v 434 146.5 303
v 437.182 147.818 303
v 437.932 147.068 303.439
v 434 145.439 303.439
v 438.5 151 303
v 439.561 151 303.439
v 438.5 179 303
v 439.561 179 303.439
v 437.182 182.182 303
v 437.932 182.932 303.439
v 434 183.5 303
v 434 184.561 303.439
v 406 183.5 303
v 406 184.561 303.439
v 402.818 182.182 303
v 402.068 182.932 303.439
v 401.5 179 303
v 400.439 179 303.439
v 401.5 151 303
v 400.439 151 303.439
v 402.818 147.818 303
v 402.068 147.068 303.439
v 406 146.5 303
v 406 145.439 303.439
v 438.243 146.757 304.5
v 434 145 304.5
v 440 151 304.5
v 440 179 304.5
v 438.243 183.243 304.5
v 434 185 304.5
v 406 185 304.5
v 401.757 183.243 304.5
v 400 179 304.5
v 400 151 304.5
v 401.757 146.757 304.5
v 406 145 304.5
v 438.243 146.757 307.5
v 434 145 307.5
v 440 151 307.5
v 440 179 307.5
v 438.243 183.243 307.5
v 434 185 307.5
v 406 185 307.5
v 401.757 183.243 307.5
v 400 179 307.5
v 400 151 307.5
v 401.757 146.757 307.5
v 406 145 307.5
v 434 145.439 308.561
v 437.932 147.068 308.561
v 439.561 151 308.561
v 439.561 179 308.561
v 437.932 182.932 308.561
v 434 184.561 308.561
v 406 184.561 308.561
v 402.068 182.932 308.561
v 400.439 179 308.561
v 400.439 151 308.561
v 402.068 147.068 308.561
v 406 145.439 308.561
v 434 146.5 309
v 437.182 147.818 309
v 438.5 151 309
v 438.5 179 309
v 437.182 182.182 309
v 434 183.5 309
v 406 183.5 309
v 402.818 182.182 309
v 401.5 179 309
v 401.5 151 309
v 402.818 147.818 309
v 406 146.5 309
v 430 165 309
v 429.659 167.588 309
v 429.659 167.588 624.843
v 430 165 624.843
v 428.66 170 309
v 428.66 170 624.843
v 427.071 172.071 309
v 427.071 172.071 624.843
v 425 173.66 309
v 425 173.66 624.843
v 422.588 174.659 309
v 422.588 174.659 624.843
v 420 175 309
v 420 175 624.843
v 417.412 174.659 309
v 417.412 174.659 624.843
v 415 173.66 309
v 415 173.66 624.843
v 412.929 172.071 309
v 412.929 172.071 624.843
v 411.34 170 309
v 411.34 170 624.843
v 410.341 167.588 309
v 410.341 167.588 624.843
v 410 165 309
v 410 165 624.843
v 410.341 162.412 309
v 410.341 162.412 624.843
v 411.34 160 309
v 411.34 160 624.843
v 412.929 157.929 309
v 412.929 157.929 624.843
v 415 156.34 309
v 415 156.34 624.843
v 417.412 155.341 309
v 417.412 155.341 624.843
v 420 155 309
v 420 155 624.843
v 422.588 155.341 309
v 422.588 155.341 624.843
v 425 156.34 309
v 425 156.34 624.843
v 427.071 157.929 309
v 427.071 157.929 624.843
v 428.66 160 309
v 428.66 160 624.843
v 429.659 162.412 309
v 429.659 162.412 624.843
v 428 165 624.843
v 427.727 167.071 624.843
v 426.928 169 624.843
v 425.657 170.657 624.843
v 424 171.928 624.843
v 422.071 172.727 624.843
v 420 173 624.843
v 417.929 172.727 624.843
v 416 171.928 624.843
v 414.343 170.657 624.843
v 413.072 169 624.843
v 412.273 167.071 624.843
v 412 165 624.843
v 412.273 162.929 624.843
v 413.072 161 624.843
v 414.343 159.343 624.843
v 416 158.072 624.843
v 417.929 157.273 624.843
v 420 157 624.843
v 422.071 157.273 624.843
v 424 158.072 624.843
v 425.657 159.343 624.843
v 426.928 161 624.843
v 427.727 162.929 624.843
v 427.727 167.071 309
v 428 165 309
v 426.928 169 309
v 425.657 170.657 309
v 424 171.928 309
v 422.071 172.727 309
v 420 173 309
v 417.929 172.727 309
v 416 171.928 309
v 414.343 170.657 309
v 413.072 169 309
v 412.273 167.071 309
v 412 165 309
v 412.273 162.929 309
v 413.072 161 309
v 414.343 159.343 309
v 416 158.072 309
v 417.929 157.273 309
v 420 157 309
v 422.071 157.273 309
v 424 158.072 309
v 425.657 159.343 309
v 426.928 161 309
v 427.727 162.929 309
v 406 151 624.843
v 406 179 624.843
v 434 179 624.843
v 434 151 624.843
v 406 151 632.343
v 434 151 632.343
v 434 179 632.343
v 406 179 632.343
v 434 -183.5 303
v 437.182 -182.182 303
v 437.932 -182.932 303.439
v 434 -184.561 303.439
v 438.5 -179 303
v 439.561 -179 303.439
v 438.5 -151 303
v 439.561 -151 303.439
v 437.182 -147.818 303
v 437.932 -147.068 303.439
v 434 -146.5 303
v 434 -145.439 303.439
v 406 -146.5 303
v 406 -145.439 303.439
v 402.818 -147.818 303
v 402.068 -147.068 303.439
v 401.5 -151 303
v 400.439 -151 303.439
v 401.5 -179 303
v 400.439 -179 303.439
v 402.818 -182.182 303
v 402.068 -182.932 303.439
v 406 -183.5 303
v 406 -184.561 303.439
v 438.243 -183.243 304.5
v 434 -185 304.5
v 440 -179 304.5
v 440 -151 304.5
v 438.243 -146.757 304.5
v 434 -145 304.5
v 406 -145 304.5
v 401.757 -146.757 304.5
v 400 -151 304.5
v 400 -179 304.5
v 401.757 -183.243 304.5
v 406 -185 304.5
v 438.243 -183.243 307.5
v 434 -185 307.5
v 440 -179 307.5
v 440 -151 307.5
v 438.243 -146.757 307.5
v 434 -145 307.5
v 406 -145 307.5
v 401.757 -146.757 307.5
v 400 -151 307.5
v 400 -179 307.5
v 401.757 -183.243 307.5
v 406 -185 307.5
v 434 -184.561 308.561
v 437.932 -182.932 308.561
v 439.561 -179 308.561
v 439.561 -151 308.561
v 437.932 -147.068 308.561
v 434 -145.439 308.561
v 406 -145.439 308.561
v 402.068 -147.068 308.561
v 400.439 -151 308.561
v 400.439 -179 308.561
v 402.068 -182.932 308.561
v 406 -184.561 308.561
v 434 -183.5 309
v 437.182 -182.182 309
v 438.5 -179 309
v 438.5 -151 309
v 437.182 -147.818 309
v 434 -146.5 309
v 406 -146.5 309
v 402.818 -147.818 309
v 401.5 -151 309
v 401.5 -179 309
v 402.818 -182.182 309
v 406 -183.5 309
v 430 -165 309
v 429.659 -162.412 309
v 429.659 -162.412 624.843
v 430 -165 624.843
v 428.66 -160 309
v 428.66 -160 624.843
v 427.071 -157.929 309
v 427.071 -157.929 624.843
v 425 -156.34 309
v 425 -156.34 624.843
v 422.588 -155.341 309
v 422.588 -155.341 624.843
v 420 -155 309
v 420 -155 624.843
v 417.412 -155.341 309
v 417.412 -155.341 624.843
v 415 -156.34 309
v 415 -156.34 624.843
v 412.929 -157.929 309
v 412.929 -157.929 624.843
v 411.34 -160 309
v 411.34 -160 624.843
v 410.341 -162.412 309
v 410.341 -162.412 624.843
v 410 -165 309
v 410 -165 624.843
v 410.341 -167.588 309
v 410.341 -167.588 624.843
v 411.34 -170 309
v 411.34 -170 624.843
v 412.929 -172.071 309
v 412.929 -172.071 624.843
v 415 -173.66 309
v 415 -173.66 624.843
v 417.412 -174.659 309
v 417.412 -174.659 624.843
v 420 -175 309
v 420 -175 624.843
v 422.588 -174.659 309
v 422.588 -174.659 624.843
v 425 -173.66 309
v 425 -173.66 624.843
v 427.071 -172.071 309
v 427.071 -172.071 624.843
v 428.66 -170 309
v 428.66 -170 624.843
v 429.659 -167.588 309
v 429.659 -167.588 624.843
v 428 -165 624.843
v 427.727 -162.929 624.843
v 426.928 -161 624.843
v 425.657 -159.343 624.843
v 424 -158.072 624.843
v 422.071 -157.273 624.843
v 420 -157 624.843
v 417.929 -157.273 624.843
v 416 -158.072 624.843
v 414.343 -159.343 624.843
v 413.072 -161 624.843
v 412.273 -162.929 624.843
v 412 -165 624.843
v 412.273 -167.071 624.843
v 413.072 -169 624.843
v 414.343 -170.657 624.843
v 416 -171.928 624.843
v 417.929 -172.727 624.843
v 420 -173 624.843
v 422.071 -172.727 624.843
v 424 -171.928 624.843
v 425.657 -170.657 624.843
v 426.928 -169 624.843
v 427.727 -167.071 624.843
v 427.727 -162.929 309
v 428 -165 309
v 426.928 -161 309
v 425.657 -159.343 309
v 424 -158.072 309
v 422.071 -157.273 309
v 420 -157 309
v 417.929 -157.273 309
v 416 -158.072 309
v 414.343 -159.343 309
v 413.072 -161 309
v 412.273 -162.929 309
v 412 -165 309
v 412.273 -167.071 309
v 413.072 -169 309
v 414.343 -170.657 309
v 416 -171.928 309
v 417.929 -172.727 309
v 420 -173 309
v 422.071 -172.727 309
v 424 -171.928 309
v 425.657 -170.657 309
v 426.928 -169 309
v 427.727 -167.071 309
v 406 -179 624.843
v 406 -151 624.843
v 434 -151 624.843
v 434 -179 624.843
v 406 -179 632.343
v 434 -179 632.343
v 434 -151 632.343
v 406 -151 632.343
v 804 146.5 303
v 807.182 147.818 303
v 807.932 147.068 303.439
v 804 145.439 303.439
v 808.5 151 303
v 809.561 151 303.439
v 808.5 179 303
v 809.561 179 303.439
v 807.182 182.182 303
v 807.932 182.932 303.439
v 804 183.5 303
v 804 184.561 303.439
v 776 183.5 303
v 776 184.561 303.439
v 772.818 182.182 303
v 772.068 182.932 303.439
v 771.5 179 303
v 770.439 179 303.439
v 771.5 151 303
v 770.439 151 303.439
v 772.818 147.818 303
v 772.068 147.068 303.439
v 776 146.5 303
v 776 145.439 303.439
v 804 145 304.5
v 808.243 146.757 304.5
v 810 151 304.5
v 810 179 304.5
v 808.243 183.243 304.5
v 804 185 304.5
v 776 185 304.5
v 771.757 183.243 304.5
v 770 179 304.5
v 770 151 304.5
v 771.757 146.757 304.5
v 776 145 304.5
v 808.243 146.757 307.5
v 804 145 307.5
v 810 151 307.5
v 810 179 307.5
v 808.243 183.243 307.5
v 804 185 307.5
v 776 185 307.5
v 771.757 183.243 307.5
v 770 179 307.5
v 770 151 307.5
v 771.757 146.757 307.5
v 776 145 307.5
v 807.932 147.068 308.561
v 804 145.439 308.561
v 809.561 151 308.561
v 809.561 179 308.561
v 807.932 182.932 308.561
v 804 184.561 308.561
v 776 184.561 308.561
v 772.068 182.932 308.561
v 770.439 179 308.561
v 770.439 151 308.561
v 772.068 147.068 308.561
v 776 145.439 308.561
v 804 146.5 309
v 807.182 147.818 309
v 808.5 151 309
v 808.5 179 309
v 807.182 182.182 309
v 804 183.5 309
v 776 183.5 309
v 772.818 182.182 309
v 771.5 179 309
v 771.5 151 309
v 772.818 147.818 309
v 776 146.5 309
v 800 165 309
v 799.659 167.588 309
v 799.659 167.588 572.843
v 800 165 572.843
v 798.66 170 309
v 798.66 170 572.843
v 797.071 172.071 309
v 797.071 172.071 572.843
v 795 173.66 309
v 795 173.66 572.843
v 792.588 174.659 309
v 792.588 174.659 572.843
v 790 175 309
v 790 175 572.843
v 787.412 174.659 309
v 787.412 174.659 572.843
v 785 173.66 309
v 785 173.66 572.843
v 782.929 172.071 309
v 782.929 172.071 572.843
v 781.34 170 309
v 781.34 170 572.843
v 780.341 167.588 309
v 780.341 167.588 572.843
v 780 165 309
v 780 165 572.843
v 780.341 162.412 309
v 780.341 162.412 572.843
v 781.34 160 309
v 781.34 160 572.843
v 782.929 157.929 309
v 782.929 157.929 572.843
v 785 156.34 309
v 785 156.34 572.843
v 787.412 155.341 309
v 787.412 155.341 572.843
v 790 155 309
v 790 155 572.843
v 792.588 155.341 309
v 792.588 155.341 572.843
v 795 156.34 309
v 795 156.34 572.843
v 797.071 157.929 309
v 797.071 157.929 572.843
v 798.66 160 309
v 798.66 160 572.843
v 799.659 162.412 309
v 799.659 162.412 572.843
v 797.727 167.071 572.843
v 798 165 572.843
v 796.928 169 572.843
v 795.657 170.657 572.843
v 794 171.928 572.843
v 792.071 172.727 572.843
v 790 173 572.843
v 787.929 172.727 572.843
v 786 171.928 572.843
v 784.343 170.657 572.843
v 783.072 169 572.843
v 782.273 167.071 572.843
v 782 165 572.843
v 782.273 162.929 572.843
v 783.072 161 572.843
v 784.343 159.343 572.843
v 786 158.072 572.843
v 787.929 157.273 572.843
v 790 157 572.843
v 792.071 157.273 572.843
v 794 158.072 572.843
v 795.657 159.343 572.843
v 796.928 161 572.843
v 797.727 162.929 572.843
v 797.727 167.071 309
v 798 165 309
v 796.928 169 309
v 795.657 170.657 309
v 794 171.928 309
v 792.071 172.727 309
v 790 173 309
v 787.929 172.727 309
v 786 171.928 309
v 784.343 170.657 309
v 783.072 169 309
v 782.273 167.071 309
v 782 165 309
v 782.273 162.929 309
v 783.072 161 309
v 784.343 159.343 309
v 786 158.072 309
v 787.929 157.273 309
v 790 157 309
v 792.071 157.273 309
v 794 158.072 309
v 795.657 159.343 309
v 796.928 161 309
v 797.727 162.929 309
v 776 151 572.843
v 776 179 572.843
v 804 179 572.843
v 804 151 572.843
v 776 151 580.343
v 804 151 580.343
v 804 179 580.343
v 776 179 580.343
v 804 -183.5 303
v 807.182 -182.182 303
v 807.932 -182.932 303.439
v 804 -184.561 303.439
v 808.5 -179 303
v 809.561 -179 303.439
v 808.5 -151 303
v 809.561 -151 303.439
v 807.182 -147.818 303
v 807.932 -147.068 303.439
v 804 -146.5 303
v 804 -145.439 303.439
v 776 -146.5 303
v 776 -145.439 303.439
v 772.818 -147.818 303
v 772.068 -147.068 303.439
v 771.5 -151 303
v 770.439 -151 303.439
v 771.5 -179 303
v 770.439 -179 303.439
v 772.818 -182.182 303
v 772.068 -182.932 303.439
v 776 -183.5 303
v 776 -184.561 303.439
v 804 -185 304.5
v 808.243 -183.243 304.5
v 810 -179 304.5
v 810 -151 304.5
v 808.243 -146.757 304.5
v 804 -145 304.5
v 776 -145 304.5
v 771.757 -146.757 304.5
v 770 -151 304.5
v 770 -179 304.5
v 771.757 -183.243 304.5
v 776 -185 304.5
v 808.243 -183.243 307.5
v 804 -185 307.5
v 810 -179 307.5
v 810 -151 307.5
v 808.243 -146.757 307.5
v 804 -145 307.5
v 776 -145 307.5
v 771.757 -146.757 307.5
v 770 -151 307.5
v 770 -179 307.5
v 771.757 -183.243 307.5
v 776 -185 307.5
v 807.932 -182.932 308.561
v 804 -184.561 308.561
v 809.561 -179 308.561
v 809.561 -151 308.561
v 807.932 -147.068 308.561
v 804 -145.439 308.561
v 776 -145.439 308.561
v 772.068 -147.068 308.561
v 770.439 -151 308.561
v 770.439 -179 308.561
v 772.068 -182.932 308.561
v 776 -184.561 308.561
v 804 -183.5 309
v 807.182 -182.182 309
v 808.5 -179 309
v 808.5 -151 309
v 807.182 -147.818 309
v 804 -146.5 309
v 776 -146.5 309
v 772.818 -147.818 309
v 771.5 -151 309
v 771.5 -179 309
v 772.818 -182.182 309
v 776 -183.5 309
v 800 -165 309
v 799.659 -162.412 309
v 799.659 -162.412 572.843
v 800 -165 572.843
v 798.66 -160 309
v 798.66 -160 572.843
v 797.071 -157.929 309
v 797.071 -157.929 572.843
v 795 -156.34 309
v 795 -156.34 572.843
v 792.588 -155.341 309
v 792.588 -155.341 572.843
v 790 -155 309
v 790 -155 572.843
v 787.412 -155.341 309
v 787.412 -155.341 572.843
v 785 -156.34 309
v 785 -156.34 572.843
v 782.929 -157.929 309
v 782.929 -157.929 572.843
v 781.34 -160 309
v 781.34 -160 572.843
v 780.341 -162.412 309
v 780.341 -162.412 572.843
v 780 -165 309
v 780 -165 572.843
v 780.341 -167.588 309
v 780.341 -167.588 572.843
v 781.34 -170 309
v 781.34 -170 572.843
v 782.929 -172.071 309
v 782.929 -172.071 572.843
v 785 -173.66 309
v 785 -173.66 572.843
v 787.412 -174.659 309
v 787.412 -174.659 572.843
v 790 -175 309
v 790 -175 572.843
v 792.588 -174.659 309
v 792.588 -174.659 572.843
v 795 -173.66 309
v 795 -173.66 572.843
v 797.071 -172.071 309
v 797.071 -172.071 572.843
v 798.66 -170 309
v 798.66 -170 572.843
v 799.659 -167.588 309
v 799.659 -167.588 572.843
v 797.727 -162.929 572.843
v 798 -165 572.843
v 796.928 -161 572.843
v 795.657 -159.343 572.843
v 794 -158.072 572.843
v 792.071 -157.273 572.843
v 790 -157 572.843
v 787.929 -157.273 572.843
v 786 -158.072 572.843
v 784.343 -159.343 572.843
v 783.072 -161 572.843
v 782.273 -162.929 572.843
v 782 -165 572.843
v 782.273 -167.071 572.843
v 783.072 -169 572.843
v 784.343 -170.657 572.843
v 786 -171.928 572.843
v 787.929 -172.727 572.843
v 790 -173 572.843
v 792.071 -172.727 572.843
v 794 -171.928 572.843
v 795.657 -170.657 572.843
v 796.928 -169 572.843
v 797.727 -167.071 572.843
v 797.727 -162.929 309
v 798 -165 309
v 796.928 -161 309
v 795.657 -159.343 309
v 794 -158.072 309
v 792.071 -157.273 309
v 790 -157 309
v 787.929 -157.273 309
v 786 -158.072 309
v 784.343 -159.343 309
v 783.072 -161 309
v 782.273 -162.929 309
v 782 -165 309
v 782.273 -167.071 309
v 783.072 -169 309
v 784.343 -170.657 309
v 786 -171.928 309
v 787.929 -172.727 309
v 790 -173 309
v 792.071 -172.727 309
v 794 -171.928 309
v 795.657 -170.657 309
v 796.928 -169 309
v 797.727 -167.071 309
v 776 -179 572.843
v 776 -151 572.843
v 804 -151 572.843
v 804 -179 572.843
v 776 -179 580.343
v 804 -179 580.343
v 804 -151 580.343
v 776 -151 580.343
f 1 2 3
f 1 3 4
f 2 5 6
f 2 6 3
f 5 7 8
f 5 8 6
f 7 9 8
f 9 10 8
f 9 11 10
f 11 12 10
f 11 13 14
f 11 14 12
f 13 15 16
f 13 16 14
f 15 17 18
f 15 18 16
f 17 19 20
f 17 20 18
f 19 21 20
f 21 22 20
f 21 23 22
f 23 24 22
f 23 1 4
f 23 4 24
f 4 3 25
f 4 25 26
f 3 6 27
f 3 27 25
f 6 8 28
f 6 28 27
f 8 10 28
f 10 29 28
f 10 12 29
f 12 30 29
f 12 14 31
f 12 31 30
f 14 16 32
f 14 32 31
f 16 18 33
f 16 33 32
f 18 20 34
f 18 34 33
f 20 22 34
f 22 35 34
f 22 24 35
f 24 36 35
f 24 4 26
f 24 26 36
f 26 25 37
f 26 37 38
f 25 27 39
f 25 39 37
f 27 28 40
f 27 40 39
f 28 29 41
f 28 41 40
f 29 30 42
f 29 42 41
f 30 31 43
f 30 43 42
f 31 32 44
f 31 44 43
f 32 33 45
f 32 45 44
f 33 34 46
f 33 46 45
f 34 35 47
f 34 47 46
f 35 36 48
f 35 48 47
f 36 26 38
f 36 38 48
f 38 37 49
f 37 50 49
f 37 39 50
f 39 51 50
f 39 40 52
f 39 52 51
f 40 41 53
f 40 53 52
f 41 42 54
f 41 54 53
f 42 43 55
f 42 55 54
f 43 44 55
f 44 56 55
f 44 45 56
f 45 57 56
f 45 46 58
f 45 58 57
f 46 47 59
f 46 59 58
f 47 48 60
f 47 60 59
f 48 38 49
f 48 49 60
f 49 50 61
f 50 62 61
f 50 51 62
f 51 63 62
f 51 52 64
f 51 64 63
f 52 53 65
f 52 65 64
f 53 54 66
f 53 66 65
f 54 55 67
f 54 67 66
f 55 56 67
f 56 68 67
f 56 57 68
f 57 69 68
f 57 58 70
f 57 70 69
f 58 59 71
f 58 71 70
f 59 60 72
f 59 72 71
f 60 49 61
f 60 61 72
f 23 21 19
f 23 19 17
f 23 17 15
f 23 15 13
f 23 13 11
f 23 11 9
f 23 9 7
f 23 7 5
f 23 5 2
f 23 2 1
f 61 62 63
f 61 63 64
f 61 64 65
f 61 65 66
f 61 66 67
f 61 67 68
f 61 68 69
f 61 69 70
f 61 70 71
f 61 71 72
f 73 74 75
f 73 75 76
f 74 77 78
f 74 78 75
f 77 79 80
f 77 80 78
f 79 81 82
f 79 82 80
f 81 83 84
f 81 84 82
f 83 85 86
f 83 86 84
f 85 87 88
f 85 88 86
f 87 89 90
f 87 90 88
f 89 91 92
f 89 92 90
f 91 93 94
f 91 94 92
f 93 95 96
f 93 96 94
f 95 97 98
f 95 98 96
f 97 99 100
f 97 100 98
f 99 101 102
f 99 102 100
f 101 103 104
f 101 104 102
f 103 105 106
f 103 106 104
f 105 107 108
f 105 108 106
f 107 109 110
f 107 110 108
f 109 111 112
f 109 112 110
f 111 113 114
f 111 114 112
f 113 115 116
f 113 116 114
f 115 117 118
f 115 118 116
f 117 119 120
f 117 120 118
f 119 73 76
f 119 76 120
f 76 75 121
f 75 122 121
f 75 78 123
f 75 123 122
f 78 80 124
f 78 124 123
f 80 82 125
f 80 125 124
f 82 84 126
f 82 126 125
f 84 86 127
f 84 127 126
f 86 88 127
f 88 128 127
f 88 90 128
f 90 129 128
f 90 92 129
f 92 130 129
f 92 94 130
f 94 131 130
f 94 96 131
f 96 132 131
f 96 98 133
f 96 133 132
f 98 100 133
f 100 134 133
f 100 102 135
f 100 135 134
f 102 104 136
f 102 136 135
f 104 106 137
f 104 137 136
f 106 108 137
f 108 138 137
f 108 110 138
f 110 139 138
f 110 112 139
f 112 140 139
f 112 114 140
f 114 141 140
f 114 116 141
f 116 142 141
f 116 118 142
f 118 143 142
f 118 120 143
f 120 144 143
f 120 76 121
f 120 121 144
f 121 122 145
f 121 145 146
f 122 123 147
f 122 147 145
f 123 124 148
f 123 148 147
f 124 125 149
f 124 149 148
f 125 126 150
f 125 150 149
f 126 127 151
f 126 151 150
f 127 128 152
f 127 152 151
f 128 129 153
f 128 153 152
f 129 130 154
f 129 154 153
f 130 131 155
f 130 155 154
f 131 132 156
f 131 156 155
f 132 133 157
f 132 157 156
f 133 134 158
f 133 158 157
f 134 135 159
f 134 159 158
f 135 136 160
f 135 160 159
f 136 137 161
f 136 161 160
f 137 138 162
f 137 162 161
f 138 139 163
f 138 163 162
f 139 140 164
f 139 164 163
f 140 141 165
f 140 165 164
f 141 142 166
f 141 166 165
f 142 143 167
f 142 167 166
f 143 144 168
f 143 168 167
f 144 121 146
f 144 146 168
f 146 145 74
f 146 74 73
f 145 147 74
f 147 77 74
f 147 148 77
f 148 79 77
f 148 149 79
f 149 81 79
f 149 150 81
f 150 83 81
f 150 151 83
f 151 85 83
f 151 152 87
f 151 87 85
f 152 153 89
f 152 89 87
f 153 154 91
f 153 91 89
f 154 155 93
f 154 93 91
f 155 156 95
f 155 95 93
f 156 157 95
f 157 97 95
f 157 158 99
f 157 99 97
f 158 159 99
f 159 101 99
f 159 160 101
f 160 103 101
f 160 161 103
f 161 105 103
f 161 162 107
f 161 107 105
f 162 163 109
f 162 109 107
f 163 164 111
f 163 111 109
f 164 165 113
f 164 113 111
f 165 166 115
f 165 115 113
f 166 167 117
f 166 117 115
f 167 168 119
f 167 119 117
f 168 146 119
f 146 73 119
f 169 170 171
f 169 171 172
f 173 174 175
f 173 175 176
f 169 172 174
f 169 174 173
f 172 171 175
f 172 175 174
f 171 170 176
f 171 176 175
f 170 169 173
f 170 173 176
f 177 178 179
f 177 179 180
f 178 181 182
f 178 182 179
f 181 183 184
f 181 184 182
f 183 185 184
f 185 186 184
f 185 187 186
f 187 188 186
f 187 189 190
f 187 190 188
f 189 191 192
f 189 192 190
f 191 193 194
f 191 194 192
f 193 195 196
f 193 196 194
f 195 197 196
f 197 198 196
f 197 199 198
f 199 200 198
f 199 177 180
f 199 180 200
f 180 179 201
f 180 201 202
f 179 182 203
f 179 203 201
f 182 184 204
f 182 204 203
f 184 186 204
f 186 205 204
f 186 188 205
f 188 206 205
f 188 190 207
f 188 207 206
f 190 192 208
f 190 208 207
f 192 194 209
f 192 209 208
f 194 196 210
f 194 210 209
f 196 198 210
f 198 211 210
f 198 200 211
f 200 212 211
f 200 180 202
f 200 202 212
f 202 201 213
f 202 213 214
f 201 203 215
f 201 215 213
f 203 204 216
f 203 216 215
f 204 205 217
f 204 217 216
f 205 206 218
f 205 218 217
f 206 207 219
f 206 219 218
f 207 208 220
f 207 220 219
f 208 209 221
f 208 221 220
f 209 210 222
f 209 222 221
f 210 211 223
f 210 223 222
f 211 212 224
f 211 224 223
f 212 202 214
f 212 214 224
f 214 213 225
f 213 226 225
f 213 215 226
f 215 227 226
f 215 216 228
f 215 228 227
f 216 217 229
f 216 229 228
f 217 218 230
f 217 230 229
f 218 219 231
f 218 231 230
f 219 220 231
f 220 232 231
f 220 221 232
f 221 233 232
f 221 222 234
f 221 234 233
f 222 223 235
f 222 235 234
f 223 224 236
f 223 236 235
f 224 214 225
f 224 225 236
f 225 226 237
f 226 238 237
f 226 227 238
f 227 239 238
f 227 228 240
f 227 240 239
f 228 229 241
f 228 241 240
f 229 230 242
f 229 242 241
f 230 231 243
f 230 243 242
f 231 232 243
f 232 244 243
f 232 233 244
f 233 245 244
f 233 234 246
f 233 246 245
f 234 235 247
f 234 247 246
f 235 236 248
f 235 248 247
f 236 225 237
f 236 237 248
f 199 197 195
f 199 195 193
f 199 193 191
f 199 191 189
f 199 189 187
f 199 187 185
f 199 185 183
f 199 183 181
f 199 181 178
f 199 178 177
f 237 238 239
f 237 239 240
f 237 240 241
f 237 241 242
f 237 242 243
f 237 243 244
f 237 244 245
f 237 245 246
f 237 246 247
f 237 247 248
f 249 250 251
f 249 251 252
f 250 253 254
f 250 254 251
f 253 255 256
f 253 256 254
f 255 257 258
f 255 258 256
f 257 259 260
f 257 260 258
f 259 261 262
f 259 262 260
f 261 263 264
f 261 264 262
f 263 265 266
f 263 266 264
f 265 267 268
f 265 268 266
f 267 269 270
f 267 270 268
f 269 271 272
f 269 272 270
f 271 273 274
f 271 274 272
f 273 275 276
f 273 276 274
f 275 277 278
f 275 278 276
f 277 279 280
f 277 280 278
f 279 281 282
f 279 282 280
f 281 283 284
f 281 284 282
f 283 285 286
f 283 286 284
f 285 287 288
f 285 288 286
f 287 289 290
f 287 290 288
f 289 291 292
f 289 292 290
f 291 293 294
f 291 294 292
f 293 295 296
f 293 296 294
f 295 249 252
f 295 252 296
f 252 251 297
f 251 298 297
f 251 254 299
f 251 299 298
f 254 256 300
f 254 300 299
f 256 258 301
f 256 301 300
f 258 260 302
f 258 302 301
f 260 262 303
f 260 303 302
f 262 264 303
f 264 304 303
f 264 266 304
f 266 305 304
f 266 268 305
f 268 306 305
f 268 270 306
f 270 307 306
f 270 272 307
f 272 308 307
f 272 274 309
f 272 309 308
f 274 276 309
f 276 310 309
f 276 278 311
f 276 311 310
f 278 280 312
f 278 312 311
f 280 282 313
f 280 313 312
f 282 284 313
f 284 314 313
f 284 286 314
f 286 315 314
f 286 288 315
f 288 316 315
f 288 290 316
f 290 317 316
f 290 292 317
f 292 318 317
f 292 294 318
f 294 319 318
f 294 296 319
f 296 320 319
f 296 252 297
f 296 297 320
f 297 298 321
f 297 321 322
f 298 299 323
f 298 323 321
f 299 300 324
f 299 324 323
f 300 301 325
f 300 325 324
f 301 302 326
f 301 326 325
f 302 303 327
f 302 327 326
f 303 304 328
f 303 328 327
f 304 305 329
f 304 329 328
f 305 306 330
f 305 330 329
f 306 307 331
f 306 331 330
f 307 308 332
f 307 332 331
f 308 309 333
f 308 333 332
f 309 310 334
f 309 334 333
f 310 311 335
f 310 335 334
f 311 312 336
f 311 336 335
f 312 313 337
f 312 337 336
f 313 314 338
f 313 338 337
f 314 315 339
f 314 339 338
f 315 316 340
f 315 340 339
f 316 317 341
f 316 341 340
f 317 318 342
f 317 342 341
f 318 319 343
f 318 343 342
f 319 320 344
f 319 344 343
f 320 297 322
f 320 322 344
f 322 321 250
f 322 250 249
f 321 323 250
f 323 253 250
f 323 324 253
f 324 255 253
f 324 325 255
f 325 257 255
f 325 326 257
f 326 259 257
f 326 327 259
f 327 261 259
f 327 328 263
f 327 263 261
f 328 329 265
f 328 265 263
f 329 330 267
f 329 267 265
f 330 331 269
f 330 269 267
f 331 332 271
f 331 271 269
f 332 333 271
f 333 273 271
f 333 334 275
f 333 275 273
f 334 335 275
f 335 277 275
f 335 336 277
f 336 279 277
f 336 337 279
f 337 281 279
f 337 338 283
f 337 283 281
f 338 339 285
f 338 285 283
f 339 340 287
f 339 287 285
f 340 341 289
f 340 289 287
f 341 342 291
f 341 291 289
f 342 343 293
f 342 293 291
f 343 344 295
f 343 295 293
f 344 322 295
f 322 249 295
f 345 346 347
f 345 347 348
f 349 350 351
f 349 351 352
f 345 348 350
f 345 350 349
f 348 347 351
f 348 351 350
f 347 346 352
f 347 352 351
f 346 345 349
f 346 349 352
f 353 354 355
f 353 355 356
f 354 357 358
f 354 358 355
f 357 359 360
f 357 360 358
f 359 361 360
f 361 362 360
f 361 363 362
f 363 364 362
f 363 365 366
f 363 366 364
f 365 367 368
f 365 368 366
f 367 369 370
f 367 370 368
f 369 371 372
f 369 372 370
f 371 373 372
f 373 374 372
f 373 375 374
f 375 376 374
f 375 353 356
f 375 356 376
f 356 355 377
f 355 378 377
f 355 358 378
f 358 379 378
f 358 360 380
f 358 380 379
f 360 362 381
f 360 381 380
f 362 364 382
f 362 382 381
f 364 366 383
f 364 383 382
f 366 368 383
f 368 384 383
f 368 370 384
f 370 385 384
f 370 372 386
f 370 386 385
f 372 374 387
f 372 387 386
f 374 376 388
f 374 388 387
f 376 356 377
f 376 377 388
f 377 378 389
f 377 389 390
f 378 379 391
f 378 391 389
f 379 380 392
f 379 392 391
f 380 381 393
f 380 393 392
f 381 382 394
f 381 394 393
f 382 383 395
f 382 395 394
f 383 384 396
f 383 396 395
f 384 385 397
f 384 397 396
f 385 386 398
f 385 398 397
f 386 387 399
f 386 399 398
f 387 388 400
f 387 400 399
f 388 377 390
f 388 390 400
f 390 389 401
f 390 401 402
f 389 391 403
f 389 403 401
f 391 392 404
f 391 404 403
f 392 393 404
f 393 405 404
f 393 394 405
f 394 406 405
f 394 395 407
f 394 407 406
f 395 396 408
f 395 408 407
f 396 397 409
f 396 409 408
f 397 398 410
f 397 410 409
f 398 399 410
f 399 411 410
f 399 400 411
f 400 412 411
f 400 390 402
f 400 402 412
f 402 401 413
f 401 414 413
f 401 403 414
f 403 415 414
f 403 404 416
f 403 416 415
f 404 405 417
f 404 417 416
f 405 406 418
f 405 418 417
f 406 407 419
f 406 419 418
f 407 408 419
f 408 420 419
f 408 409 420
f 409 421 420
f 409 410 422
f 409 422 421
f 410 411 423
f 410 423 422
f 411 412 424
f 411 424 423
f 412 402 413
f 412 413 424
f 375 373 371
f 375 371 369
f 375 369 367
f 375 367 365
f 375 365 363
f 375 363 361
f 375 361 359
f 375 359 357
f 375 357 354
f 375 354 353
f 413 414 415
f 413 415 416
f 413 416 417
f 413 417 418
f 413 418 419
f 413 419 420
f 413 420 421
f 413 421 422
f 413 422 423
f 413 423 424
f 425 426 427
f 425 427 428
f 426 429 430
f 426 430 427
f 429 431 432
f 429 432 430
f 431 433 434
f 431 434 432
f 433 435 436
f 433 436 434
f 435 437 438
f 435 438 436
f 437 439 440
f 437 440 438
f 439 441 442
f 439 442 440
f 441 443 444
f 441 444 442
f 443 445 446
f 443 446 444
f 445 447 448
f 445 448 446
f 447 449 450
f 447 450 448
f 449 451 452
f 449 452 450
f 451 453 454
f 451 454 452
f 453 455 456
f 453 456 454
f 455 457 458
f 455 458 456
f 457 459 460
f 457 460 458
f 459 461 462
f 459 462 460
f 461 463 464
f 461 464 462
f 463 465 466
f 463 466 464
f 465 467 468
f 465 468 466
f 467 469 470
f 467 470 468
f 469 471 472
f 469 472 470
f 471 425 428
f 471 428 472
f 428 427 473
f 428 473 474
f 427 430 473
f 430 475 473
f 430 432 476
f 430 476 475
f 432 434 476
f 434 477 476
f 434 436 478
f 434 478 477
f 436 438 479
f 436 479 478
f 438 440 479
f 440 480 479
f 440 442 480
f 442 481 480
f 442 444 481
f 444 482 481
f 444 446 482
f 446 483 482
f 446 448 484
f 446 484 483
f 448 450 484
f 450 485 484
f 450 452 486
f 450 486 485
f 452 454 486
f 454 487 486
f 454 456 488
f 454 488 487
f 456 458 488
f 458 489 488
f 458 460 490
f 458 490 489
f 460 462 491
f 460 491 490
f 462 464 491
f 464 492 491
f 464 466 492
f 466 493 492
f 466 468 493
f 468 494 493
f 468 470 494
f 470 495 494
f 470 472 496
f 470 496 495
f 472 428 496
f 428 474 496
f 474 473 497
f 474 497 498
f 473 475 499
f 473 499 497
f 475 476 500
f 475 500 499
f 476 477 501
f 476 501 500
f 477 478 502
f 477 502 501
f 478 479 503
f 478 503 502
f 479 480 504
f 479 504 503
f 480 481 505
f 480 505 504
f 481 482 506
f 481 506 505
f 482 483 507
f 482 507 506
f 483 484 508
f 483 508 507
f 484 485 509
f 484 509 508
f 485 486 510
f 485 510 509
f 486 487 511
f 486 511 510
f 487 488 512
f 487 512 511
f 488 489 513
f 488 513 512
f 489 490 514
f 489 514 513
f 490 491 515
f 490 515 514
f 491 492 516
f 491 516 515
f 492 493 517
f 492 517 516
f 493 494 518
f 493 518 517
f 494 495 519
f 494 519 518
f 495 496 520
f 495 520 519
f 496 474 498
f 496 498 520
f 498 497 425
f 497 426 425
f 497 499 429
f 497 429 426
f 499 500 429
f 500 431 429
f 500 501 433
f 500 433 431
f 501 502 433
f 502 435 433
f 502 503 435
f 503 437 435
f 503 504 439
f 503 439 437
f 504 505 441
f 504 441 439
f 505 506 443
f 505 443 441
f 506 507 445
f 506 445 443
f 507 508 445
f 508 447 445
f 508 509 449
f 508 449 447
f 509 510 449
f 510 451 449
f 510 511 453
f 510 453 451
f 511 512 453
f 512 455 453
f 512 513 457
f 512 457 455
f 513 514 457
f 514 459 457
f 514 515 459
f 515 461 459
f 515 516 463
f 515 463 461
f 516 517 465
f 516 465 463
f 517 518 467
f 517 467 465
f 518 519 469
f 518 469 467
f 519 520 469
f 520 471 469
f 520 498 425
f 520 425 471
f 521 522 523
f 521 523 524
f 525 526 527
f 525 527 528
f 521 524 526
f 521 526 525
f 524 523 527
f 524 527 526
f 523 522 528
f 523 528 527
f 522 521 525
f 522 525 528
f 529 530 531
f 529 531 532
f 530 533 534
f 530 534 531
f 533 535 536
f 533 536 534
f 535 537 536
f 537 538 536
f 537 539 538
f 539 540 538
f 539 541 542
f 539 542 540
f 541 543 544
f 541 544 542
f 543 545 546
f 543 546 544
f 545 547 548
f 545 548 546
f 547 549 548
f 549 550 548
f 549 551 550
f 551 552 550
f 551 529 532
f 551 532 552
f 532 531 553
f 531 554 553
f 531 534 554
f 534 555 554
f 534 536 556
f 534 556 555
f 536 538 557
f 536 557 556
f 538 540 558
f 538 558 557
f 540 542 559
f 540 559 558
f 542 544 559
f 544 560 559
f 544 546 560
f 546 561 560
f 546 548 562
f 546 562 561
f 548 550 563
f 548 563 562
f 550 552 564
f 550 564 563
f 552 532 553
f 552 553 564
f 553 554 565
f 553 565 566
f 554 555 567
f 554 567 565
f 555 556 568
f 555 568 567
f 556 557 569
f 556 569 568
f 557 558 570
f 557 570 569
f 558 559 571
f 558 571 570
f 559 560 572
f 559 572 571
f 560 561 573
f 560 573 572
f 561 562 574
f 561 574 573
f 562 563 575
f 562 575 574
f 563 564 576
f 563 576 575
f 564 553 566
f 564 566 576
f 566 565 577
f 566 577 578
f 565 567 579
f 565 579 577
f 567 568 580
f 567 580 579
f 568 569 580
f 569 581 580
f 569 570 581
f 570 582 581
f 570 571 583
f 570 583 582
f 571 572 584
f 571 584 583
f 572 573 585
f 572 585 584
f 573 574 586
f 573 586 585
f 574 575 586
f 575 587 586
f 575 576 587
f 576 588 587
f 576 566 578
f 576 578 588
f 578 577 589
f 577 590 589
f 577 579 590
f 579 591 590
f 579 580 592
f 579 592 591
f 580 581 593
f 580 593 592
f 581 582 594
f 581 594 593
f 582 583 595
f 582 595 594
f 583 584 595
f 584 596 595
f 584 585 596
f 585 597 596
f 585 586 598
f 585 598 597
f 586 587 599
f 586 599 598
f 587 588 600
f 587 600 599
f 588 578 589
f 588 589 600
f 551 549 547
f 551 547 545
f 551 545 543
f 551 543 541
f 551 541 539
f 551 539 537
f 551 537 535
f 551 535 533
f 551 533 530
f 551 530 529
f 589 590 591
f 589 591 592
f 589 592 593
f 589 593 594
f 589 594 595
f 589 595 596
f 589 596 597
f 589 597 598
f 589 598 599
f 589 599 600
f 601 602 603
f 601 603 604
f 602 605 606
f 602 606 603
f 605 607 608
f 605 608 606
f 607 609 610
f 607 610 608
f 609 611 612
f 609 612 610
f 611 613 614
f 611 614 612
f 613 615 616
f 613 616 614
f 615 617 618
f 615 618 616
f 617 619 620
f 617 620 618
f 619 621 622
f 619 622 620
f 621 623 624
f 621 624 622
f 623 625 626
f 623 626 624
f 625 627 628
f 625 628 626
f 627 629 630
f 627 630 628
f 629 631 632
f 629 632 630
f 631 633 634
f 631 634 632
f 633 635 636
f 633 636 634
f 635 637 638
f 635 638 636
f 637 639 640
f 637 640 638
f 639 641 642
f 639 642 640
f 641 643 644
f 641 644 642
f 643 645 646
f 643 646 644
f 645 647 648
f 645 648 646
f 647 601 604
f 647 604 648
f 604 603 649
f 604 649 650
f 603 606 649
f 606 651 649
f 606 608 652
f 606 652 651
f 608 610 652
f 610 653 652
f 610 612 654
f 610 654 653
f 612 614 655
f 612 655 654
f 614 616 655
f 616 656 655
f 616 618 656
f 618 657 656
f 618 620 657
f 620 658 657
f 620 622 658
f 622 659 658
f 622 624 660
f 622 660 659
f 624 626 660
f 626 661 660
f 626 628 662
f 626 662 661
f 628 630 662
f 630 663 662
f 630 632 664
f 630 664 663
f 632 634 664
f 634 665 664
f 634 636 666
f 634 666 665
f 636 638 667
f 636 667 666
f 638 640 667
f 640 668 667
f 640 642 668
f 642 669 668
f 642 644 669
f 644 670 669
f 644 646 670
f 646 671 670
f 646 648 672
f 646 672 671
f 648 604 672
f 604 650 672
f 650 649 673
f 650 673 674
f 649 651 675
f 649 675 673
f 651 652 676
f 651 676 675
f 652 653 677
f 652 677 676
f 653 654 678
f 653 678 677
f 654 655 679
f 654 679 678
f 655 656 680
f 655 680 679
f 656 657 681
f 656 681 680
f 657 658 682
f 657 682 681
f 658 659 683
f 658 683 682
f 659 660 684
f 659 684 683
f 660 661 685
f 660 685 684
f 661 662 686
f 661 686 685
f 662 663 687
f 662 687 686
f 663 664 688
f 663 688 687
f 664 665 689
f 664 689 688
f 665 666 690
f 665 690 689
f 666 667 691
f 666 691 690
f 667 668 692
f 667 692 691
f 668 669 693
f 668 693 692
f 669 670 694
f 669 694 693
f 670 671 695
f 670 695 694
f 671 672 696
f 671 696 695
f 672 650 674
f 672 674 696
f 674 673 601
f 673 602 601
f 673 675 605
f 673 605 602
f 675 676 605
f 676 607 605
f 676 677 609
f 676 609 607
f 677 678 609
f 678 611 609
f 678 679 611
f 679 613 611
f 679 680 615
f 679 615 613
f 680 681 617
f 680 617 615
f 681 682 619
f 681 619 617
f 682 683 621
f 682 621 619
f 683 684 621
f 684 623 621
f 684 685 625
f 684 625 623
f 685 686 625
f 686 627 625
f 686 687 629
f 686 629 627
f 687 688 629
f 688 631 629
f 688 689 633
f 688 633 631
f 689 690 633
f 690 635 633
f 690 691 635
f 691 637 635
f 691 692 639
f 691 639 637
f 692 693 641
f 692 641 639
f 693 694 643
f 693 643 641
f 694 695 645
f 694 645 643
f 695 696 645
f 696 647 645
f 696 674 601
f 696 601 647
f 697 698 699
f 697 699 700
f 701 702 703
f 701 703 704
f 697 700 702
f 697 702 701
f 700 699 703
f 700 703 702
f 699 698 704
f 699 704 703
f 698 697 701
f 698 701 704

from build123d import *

# Parameters (mm, degrees)
BLOCK_START           = 303
BLOCK_1_DEPTH         = 6
BLOCK_EDGE_FILLET_1_R = 1.5
EXTRUDE_START         = 309
EXTRUDE_SKETCH_1_R    = 10
EXTRUDE_SKETCH_1_R_2  = 8
EXTRUDE_1_DEPTH       = 315.843353848
EXTRUDE_START_2       = 624.843353848
EXTRUDE_SKETCH_2_W    = 28
EXTRUDE_SKETCH_2_H    = 28
EXTRUDE_2_DEPTH       = 7.5
BLOCK_2_DEPTH         = 6
BLOCK_EDGE_FILLET_2_R = 1.5
EXTRUDE_SKETCH_3_R    = 10
EXTRUDE_SKETCH_3_R_2  = 8
EXTRUDE_3_DEPTH       = 315.843353848
EXTRUDE_SKETCH_4_W    = 28
EXTRUDE_SKETCH_4_H    = 28
EXTRUDE_4_DEPTH       = 7.5
BLOCK_3_DEPTH         = 6
BLOCK_EDGE_FILLET_3_R = 1.5
EXTRUDE_SKETCH_5_R    = 10
EXTRUDE_SKETCH_5_R_2  = 8
EXTRUDE_5_DEPTH       = 263.843245008
EXTRUDE_START_3       = 572.843245008
EXTRUDE_SKETCH_6_W    = 28
EXTRUDE_SKETCH_6_H    = 28
EXTRUDE_6_DEPTH       = 7.5
BLOCK_4_DEPTH         = 6
BLOCK_EDGE_FILLET_4_R = 1.5
EXTRUDE_SKETCH_7_R    = 10
EXTRUDE_SKETCH_7_R_2  = 8
EXTRUDE_7_DEPTH       = 263.843245008
EXTRUDE_SKETCH_8_W    = 28
EXTRUDE_SKETCH_8_H    = 28
EXTRUDE_8_DEPTH       = 7.5


with BuildPart() as part:
    # Block sketch 1 → Block 1 (new body)
    with BuildSketch(Plane.XY.offset(BLOCK_START)):
        with BuildLine():
            Line((406, 145), (434, 145))
            ThreePointArc((434, 145), (438.242640687, 146.757359313), (440, 151))
            Line((440, 151), (440, 179))
            ThreePointArc((440, 179), (438.242640687, 183.242640687), (434, 185))
            Line((434, 185), (406, 185))
            ThreePointArc((406, 185), (401.757359313, 183.242640687), (400, 179))
            Line((400, 179), (400, 151))
            ThreePointArc((400, 151), (401.757359313, 146.757359313), (406, 145))
        make_face()
    extrude(amount=BLOCK_1_DEPTH)

    # Block edge fillet 1
    block_edge_fillet_1_edges = [part.edges().sort_by_distance(p)[0] for p in [
        (440, 165, 303),
        (438.242640687, 146.757359313, 303),
        (420, 145, 303),
        (401.757359313, 146.757359313, 303),
        (438.242640687, 146.757359313, 309),
        (440, 165, 309),
        (438.242640687, 183.242640687, 309),
        (420, 185, 309),
        (401.757359313, 183.242640687, 309),
        (400, 165, 309),
        (401.757359313, 146.757359313, 309),
        (400, 165, 303),
        (420, 145, 309),
        (401.757359313, 183.242640687, 303),
        (420, 185, 303),
        (438.242640687, 183.242640687, 303),
    ]]
    fillet(block_edge_fillet_1_edges, radius=BLOCK_EDGE_FILLET_1_R)


with BuildPart() as body_2:
    # Extrude sketch 1 → Extrude 1 (new body)
    with BuildSketch(Plane.XY.offset(EXTRUDE_START)):
        with Locations((420, 165)):
            Circle(EXTRUDE_SKETCH_1_R)
        with Locations((420, 165)):
            Circle(EXTRUDE_SKETCH_1_R_2, mode=Mode.SUBTRACT)
    extrude(amount=EXTRUDE_1_DEPTH)


with BuildPart() as body_3:
    # Extrude sketch 2 → Extrude 2 (new body)
    with BuildSketch(Plane.XY.offset(EXTRUDE_START_2)):
        with Locations((420, 165)):
            Rectangle(EXTRUDE_SKETCH_2_W, EXTRUDE_SKETCH_2_H)
    extrude(amount=EXTRUDE_2_DEPTH)


with BuildPart() as body_4:
    # Block sketch 2 → Block 2 (new body)
    with BuildSketch(Plane.XY.offset(BLOCK_START)):
        with BuildLine():
            Line((406, -185), (434, -185))
            ThreePointArc((434, -185), (438.242640687, -183.242640687), (440, -179))
            Line((440, -179), (440, -151))
            ThreePointArc((440, -151), (438.242640687, -146.757359313), (434, -145))
            Line((434, -145), (406, -145))
            ThreePointArc((406, -145), (401.757359313, -146.757359313), (400, -151))
            Line((400, -151), (400, -179))
            ThreePointArc((400, -179), (401.757359313, -183.242640687), (406, -185))
        make_face()
    extrude(amount=BLOCK_2_DEPTH)

    # Block edge fillet 2
    block_edge_fillet_2_edges = [body_4.edges().sort_by_distance(p)[0] for p in [
        (440, -165, 303),
        (438.242640687, -183.242640687, 303),
        (420, -185, 303),
        (401.757359313, -183.242640687, 303),
        (438.242640687, -183.242640687, 309),
        (440, -165, 309),
        (438.242640687, -146.757359313, 309),
        (420, -145, 309),
        (401.757359313, -146.757359313, 309),
        (400, -165, 309),
        (401.757359313, -183.242640687, 309),
        (400, -165, 303),
        (420, -185, 309),
        (401.757359313, -146.757359313, 303),
        (420, -145, 303),
        (438.242640687, -146.757359313, 303),
    ]]
    fillet(block_edge_fillet_2_edges, radius=BLOCK_EDGE_FILLET_2_R)


with BuildPart() as body_5:
    # Extrude sketch 3 → Extrude 3 (new body)
    with BuildSketch(Plane.XY.offset(EXTRUDE_START)):
        with Locations((420, -165)):
            Circle(EXTRUDE_SKETCH_3_R)
        with Locations((420, -165)):
            Circle(EXTRUDE_SKETCH_3_R_2, mode=Mode.SUBTRACT)
    extrude(amount=EXTRUDE_3_DEPTH)


with BuildPart() as body_6:
    # Extrude sketch 4 → Extrude 4 (new body)
    with BuildSketch(Plane.XY.offset(EXTRUDE_START_2)):
        with Locations((420, -165)):
            Rectangle(EXTRUDE_SKETCH_4_W, EXTRUDE_SKETCH_4_H)
    extrude(amount=EXTRUDE_4_DEPTH)


with BuildPart() as body_7:
    # Block sketch 3 → Block 3 (new body)
    with BuildSketch(Plane.XY.offset(BLOCK_START)):
        with BuildLine():
            Line((776, 145), (804, 145))
            ThreePointArc((804, 145), (808.242640687, 146.757359313), (810, 151))
            Line((810, 151), (810, 179))
            ThreePointArc((810, 179), (808.242640687, 183.242640687), (804, 185))
            Line((804, 185), (776, 185))
            ThreePointArc((776, 185), (771.757359313, 183.242640687), (770, 179))
            Line((770, 179), (770, 151))
            ThreePointArc((770, 151), (771.757359313, 146.757359313), (776, 145))
        make_face()
    extrude(amount=BLOCK_3_DEPTH)

    # Block edge fillet 3
    block_edge_fillet_3_edges = [body_7.edges().sort_by_distance(p)[0] for p in [
        (810, 165, 303),
        (808.242640687, 146.757359313, 303),
        (790, 145, 303),
        (771.757359313, 146.757359313, 303),
        (808.242640687, 146.757359313, 309),
        (810, 165, 309),
        (808.242640687, 183.242640687, 309),
        (790, 185, 309),
        (771.757359313, 183.242640687, 309),
        (770, 165, 309),
        (771.757359313, 146.757359313, 309),
        (770, 165, 303),
        (790, 145, 309),
        (771.757359313, 183.242640687, 303),
        (790, 185, 303),
        (808.242640687, 183.242640687, 303),
    ]]
    fillet(block_edge_fillet_3_edges, radius=BLOCK_EDGE_FILLET_3_R)


with BuildPart() as body_8:
    # Extrude sketch 5 → Extrude 5 (new body)
    with BuildSketch(Plane.XY.offset(EXTRUDE_START)):
        with Locations((790, 165)):
            Circle(EXTRUDE_SKETCH_5_R)
        with Locations((790, 165)):
            Circle(EXTRUDE_SKETCH_5_R_2, mode=Mode.SUBTRACT)
    extrude(amount=EXTRUDE_5_DEPTH)


with BuildPart() as body_9:
    # Extrude sketch 6 → Extrude 6 (new body)
    with BuildSketch(Plane.XY.offset(EXTRUDE_START_3)):
        with Locations((790, 165)):
            Rectangle(EXTRUDE_SKETCH_6_W, EXTRUDE_SKETCH_6_H)
    extrude(amount=EXTRUDE_6_DEPTH)


with BuildPart() as body_10:
    # Block sketch 4 → Block 4 (new body)
    with BuildSketch(Plane.XY.offset(BLOCK_START)):
        with BuildLine():
            Line((776, -185), (804, -185))
            ThreePointArc((804, -185), (808.242640687, -183.242640687), (810, -179))
            Line((810, -179), (810, -151))
            ThreePointArc((810, -151), (808.242640687, -146.757359313), (804, -145))
            Line((804, -145), (776, -145))
            ThreePointArc((776, -145), (771.757359313, -146.757359313), (770, -151))
            Line((770, -151), (770, -179))
            ThreePointArc((770, -179), (771.757359313, -183.242640687), (776, -185))
        make_face()
    extrude(amount=BLOCK_4_DEPTH)

    # Block edge fillet 4
    block_edge_fillet_4_edges = [body_10.edges().sort_by_distance(p)[0] for p in [
        (810, -165, 303),
        (808.242640687, -183.242640687, 303),
        (790, -185, 303),
        (771.757359313, -183.242640687, 303),
        (808.242640687, -183.242640687, 309),
        (810, -165, 309),
        (808.242640687, -146.757359313, 309),
        (790, -145, 309),
        (771.757359313, -146.757359313, 309),
        (770, -165, 309),
        (771.757359313, -183.242640687, 309),
        (770, -165, 303),
        (790, -185, 309),
        (771.757359313, -146.757359313, 303),
        (790, -145, 303),
        (808.242640687, -146.757359313, 303),
    ]]
    fillet(block_edge_fillet_4_edges, radius=BLOCK_EDGE_FILLET_4_R)


with BuildPart() as body_11:
    # Extrude sketch 7 → Extrude 7 (new body)
    with BuildSketch(Plane.XY.offset(EXTRUDE_START)):
        with Locations((790, -165)):
            Circle(EXTRUDE_SKETCH_7_R)
        with Locations((790, -165)):
            Circle(EXTRUDE_SKETCH_7_R_2, mode=Mode.SUBTRACT)
    extrude(amount=EXTRUDE_7_DEPTH)


with BuildPart() as body_12:
    # Extrude sketch 8 → Extrude 8 (new body)
    with BuildSketch(Plane.XY.offset(EXTRUDE_START_3)):
        with Locations((790, -165)):
            Rectangle(EXTRUDE_SKETCH_8_W, EXTRUDE_SKETCH_8_H)
    extrude(amount=EXTRUDE_8_DEPTH)


solid = Compound([part.part, body_2.part, body_3.part, body_4.part, body_5.part, body_6.part, body_7.part, body_8.part, body_9.part, body_10.part, body_11.part, body_12.part])
